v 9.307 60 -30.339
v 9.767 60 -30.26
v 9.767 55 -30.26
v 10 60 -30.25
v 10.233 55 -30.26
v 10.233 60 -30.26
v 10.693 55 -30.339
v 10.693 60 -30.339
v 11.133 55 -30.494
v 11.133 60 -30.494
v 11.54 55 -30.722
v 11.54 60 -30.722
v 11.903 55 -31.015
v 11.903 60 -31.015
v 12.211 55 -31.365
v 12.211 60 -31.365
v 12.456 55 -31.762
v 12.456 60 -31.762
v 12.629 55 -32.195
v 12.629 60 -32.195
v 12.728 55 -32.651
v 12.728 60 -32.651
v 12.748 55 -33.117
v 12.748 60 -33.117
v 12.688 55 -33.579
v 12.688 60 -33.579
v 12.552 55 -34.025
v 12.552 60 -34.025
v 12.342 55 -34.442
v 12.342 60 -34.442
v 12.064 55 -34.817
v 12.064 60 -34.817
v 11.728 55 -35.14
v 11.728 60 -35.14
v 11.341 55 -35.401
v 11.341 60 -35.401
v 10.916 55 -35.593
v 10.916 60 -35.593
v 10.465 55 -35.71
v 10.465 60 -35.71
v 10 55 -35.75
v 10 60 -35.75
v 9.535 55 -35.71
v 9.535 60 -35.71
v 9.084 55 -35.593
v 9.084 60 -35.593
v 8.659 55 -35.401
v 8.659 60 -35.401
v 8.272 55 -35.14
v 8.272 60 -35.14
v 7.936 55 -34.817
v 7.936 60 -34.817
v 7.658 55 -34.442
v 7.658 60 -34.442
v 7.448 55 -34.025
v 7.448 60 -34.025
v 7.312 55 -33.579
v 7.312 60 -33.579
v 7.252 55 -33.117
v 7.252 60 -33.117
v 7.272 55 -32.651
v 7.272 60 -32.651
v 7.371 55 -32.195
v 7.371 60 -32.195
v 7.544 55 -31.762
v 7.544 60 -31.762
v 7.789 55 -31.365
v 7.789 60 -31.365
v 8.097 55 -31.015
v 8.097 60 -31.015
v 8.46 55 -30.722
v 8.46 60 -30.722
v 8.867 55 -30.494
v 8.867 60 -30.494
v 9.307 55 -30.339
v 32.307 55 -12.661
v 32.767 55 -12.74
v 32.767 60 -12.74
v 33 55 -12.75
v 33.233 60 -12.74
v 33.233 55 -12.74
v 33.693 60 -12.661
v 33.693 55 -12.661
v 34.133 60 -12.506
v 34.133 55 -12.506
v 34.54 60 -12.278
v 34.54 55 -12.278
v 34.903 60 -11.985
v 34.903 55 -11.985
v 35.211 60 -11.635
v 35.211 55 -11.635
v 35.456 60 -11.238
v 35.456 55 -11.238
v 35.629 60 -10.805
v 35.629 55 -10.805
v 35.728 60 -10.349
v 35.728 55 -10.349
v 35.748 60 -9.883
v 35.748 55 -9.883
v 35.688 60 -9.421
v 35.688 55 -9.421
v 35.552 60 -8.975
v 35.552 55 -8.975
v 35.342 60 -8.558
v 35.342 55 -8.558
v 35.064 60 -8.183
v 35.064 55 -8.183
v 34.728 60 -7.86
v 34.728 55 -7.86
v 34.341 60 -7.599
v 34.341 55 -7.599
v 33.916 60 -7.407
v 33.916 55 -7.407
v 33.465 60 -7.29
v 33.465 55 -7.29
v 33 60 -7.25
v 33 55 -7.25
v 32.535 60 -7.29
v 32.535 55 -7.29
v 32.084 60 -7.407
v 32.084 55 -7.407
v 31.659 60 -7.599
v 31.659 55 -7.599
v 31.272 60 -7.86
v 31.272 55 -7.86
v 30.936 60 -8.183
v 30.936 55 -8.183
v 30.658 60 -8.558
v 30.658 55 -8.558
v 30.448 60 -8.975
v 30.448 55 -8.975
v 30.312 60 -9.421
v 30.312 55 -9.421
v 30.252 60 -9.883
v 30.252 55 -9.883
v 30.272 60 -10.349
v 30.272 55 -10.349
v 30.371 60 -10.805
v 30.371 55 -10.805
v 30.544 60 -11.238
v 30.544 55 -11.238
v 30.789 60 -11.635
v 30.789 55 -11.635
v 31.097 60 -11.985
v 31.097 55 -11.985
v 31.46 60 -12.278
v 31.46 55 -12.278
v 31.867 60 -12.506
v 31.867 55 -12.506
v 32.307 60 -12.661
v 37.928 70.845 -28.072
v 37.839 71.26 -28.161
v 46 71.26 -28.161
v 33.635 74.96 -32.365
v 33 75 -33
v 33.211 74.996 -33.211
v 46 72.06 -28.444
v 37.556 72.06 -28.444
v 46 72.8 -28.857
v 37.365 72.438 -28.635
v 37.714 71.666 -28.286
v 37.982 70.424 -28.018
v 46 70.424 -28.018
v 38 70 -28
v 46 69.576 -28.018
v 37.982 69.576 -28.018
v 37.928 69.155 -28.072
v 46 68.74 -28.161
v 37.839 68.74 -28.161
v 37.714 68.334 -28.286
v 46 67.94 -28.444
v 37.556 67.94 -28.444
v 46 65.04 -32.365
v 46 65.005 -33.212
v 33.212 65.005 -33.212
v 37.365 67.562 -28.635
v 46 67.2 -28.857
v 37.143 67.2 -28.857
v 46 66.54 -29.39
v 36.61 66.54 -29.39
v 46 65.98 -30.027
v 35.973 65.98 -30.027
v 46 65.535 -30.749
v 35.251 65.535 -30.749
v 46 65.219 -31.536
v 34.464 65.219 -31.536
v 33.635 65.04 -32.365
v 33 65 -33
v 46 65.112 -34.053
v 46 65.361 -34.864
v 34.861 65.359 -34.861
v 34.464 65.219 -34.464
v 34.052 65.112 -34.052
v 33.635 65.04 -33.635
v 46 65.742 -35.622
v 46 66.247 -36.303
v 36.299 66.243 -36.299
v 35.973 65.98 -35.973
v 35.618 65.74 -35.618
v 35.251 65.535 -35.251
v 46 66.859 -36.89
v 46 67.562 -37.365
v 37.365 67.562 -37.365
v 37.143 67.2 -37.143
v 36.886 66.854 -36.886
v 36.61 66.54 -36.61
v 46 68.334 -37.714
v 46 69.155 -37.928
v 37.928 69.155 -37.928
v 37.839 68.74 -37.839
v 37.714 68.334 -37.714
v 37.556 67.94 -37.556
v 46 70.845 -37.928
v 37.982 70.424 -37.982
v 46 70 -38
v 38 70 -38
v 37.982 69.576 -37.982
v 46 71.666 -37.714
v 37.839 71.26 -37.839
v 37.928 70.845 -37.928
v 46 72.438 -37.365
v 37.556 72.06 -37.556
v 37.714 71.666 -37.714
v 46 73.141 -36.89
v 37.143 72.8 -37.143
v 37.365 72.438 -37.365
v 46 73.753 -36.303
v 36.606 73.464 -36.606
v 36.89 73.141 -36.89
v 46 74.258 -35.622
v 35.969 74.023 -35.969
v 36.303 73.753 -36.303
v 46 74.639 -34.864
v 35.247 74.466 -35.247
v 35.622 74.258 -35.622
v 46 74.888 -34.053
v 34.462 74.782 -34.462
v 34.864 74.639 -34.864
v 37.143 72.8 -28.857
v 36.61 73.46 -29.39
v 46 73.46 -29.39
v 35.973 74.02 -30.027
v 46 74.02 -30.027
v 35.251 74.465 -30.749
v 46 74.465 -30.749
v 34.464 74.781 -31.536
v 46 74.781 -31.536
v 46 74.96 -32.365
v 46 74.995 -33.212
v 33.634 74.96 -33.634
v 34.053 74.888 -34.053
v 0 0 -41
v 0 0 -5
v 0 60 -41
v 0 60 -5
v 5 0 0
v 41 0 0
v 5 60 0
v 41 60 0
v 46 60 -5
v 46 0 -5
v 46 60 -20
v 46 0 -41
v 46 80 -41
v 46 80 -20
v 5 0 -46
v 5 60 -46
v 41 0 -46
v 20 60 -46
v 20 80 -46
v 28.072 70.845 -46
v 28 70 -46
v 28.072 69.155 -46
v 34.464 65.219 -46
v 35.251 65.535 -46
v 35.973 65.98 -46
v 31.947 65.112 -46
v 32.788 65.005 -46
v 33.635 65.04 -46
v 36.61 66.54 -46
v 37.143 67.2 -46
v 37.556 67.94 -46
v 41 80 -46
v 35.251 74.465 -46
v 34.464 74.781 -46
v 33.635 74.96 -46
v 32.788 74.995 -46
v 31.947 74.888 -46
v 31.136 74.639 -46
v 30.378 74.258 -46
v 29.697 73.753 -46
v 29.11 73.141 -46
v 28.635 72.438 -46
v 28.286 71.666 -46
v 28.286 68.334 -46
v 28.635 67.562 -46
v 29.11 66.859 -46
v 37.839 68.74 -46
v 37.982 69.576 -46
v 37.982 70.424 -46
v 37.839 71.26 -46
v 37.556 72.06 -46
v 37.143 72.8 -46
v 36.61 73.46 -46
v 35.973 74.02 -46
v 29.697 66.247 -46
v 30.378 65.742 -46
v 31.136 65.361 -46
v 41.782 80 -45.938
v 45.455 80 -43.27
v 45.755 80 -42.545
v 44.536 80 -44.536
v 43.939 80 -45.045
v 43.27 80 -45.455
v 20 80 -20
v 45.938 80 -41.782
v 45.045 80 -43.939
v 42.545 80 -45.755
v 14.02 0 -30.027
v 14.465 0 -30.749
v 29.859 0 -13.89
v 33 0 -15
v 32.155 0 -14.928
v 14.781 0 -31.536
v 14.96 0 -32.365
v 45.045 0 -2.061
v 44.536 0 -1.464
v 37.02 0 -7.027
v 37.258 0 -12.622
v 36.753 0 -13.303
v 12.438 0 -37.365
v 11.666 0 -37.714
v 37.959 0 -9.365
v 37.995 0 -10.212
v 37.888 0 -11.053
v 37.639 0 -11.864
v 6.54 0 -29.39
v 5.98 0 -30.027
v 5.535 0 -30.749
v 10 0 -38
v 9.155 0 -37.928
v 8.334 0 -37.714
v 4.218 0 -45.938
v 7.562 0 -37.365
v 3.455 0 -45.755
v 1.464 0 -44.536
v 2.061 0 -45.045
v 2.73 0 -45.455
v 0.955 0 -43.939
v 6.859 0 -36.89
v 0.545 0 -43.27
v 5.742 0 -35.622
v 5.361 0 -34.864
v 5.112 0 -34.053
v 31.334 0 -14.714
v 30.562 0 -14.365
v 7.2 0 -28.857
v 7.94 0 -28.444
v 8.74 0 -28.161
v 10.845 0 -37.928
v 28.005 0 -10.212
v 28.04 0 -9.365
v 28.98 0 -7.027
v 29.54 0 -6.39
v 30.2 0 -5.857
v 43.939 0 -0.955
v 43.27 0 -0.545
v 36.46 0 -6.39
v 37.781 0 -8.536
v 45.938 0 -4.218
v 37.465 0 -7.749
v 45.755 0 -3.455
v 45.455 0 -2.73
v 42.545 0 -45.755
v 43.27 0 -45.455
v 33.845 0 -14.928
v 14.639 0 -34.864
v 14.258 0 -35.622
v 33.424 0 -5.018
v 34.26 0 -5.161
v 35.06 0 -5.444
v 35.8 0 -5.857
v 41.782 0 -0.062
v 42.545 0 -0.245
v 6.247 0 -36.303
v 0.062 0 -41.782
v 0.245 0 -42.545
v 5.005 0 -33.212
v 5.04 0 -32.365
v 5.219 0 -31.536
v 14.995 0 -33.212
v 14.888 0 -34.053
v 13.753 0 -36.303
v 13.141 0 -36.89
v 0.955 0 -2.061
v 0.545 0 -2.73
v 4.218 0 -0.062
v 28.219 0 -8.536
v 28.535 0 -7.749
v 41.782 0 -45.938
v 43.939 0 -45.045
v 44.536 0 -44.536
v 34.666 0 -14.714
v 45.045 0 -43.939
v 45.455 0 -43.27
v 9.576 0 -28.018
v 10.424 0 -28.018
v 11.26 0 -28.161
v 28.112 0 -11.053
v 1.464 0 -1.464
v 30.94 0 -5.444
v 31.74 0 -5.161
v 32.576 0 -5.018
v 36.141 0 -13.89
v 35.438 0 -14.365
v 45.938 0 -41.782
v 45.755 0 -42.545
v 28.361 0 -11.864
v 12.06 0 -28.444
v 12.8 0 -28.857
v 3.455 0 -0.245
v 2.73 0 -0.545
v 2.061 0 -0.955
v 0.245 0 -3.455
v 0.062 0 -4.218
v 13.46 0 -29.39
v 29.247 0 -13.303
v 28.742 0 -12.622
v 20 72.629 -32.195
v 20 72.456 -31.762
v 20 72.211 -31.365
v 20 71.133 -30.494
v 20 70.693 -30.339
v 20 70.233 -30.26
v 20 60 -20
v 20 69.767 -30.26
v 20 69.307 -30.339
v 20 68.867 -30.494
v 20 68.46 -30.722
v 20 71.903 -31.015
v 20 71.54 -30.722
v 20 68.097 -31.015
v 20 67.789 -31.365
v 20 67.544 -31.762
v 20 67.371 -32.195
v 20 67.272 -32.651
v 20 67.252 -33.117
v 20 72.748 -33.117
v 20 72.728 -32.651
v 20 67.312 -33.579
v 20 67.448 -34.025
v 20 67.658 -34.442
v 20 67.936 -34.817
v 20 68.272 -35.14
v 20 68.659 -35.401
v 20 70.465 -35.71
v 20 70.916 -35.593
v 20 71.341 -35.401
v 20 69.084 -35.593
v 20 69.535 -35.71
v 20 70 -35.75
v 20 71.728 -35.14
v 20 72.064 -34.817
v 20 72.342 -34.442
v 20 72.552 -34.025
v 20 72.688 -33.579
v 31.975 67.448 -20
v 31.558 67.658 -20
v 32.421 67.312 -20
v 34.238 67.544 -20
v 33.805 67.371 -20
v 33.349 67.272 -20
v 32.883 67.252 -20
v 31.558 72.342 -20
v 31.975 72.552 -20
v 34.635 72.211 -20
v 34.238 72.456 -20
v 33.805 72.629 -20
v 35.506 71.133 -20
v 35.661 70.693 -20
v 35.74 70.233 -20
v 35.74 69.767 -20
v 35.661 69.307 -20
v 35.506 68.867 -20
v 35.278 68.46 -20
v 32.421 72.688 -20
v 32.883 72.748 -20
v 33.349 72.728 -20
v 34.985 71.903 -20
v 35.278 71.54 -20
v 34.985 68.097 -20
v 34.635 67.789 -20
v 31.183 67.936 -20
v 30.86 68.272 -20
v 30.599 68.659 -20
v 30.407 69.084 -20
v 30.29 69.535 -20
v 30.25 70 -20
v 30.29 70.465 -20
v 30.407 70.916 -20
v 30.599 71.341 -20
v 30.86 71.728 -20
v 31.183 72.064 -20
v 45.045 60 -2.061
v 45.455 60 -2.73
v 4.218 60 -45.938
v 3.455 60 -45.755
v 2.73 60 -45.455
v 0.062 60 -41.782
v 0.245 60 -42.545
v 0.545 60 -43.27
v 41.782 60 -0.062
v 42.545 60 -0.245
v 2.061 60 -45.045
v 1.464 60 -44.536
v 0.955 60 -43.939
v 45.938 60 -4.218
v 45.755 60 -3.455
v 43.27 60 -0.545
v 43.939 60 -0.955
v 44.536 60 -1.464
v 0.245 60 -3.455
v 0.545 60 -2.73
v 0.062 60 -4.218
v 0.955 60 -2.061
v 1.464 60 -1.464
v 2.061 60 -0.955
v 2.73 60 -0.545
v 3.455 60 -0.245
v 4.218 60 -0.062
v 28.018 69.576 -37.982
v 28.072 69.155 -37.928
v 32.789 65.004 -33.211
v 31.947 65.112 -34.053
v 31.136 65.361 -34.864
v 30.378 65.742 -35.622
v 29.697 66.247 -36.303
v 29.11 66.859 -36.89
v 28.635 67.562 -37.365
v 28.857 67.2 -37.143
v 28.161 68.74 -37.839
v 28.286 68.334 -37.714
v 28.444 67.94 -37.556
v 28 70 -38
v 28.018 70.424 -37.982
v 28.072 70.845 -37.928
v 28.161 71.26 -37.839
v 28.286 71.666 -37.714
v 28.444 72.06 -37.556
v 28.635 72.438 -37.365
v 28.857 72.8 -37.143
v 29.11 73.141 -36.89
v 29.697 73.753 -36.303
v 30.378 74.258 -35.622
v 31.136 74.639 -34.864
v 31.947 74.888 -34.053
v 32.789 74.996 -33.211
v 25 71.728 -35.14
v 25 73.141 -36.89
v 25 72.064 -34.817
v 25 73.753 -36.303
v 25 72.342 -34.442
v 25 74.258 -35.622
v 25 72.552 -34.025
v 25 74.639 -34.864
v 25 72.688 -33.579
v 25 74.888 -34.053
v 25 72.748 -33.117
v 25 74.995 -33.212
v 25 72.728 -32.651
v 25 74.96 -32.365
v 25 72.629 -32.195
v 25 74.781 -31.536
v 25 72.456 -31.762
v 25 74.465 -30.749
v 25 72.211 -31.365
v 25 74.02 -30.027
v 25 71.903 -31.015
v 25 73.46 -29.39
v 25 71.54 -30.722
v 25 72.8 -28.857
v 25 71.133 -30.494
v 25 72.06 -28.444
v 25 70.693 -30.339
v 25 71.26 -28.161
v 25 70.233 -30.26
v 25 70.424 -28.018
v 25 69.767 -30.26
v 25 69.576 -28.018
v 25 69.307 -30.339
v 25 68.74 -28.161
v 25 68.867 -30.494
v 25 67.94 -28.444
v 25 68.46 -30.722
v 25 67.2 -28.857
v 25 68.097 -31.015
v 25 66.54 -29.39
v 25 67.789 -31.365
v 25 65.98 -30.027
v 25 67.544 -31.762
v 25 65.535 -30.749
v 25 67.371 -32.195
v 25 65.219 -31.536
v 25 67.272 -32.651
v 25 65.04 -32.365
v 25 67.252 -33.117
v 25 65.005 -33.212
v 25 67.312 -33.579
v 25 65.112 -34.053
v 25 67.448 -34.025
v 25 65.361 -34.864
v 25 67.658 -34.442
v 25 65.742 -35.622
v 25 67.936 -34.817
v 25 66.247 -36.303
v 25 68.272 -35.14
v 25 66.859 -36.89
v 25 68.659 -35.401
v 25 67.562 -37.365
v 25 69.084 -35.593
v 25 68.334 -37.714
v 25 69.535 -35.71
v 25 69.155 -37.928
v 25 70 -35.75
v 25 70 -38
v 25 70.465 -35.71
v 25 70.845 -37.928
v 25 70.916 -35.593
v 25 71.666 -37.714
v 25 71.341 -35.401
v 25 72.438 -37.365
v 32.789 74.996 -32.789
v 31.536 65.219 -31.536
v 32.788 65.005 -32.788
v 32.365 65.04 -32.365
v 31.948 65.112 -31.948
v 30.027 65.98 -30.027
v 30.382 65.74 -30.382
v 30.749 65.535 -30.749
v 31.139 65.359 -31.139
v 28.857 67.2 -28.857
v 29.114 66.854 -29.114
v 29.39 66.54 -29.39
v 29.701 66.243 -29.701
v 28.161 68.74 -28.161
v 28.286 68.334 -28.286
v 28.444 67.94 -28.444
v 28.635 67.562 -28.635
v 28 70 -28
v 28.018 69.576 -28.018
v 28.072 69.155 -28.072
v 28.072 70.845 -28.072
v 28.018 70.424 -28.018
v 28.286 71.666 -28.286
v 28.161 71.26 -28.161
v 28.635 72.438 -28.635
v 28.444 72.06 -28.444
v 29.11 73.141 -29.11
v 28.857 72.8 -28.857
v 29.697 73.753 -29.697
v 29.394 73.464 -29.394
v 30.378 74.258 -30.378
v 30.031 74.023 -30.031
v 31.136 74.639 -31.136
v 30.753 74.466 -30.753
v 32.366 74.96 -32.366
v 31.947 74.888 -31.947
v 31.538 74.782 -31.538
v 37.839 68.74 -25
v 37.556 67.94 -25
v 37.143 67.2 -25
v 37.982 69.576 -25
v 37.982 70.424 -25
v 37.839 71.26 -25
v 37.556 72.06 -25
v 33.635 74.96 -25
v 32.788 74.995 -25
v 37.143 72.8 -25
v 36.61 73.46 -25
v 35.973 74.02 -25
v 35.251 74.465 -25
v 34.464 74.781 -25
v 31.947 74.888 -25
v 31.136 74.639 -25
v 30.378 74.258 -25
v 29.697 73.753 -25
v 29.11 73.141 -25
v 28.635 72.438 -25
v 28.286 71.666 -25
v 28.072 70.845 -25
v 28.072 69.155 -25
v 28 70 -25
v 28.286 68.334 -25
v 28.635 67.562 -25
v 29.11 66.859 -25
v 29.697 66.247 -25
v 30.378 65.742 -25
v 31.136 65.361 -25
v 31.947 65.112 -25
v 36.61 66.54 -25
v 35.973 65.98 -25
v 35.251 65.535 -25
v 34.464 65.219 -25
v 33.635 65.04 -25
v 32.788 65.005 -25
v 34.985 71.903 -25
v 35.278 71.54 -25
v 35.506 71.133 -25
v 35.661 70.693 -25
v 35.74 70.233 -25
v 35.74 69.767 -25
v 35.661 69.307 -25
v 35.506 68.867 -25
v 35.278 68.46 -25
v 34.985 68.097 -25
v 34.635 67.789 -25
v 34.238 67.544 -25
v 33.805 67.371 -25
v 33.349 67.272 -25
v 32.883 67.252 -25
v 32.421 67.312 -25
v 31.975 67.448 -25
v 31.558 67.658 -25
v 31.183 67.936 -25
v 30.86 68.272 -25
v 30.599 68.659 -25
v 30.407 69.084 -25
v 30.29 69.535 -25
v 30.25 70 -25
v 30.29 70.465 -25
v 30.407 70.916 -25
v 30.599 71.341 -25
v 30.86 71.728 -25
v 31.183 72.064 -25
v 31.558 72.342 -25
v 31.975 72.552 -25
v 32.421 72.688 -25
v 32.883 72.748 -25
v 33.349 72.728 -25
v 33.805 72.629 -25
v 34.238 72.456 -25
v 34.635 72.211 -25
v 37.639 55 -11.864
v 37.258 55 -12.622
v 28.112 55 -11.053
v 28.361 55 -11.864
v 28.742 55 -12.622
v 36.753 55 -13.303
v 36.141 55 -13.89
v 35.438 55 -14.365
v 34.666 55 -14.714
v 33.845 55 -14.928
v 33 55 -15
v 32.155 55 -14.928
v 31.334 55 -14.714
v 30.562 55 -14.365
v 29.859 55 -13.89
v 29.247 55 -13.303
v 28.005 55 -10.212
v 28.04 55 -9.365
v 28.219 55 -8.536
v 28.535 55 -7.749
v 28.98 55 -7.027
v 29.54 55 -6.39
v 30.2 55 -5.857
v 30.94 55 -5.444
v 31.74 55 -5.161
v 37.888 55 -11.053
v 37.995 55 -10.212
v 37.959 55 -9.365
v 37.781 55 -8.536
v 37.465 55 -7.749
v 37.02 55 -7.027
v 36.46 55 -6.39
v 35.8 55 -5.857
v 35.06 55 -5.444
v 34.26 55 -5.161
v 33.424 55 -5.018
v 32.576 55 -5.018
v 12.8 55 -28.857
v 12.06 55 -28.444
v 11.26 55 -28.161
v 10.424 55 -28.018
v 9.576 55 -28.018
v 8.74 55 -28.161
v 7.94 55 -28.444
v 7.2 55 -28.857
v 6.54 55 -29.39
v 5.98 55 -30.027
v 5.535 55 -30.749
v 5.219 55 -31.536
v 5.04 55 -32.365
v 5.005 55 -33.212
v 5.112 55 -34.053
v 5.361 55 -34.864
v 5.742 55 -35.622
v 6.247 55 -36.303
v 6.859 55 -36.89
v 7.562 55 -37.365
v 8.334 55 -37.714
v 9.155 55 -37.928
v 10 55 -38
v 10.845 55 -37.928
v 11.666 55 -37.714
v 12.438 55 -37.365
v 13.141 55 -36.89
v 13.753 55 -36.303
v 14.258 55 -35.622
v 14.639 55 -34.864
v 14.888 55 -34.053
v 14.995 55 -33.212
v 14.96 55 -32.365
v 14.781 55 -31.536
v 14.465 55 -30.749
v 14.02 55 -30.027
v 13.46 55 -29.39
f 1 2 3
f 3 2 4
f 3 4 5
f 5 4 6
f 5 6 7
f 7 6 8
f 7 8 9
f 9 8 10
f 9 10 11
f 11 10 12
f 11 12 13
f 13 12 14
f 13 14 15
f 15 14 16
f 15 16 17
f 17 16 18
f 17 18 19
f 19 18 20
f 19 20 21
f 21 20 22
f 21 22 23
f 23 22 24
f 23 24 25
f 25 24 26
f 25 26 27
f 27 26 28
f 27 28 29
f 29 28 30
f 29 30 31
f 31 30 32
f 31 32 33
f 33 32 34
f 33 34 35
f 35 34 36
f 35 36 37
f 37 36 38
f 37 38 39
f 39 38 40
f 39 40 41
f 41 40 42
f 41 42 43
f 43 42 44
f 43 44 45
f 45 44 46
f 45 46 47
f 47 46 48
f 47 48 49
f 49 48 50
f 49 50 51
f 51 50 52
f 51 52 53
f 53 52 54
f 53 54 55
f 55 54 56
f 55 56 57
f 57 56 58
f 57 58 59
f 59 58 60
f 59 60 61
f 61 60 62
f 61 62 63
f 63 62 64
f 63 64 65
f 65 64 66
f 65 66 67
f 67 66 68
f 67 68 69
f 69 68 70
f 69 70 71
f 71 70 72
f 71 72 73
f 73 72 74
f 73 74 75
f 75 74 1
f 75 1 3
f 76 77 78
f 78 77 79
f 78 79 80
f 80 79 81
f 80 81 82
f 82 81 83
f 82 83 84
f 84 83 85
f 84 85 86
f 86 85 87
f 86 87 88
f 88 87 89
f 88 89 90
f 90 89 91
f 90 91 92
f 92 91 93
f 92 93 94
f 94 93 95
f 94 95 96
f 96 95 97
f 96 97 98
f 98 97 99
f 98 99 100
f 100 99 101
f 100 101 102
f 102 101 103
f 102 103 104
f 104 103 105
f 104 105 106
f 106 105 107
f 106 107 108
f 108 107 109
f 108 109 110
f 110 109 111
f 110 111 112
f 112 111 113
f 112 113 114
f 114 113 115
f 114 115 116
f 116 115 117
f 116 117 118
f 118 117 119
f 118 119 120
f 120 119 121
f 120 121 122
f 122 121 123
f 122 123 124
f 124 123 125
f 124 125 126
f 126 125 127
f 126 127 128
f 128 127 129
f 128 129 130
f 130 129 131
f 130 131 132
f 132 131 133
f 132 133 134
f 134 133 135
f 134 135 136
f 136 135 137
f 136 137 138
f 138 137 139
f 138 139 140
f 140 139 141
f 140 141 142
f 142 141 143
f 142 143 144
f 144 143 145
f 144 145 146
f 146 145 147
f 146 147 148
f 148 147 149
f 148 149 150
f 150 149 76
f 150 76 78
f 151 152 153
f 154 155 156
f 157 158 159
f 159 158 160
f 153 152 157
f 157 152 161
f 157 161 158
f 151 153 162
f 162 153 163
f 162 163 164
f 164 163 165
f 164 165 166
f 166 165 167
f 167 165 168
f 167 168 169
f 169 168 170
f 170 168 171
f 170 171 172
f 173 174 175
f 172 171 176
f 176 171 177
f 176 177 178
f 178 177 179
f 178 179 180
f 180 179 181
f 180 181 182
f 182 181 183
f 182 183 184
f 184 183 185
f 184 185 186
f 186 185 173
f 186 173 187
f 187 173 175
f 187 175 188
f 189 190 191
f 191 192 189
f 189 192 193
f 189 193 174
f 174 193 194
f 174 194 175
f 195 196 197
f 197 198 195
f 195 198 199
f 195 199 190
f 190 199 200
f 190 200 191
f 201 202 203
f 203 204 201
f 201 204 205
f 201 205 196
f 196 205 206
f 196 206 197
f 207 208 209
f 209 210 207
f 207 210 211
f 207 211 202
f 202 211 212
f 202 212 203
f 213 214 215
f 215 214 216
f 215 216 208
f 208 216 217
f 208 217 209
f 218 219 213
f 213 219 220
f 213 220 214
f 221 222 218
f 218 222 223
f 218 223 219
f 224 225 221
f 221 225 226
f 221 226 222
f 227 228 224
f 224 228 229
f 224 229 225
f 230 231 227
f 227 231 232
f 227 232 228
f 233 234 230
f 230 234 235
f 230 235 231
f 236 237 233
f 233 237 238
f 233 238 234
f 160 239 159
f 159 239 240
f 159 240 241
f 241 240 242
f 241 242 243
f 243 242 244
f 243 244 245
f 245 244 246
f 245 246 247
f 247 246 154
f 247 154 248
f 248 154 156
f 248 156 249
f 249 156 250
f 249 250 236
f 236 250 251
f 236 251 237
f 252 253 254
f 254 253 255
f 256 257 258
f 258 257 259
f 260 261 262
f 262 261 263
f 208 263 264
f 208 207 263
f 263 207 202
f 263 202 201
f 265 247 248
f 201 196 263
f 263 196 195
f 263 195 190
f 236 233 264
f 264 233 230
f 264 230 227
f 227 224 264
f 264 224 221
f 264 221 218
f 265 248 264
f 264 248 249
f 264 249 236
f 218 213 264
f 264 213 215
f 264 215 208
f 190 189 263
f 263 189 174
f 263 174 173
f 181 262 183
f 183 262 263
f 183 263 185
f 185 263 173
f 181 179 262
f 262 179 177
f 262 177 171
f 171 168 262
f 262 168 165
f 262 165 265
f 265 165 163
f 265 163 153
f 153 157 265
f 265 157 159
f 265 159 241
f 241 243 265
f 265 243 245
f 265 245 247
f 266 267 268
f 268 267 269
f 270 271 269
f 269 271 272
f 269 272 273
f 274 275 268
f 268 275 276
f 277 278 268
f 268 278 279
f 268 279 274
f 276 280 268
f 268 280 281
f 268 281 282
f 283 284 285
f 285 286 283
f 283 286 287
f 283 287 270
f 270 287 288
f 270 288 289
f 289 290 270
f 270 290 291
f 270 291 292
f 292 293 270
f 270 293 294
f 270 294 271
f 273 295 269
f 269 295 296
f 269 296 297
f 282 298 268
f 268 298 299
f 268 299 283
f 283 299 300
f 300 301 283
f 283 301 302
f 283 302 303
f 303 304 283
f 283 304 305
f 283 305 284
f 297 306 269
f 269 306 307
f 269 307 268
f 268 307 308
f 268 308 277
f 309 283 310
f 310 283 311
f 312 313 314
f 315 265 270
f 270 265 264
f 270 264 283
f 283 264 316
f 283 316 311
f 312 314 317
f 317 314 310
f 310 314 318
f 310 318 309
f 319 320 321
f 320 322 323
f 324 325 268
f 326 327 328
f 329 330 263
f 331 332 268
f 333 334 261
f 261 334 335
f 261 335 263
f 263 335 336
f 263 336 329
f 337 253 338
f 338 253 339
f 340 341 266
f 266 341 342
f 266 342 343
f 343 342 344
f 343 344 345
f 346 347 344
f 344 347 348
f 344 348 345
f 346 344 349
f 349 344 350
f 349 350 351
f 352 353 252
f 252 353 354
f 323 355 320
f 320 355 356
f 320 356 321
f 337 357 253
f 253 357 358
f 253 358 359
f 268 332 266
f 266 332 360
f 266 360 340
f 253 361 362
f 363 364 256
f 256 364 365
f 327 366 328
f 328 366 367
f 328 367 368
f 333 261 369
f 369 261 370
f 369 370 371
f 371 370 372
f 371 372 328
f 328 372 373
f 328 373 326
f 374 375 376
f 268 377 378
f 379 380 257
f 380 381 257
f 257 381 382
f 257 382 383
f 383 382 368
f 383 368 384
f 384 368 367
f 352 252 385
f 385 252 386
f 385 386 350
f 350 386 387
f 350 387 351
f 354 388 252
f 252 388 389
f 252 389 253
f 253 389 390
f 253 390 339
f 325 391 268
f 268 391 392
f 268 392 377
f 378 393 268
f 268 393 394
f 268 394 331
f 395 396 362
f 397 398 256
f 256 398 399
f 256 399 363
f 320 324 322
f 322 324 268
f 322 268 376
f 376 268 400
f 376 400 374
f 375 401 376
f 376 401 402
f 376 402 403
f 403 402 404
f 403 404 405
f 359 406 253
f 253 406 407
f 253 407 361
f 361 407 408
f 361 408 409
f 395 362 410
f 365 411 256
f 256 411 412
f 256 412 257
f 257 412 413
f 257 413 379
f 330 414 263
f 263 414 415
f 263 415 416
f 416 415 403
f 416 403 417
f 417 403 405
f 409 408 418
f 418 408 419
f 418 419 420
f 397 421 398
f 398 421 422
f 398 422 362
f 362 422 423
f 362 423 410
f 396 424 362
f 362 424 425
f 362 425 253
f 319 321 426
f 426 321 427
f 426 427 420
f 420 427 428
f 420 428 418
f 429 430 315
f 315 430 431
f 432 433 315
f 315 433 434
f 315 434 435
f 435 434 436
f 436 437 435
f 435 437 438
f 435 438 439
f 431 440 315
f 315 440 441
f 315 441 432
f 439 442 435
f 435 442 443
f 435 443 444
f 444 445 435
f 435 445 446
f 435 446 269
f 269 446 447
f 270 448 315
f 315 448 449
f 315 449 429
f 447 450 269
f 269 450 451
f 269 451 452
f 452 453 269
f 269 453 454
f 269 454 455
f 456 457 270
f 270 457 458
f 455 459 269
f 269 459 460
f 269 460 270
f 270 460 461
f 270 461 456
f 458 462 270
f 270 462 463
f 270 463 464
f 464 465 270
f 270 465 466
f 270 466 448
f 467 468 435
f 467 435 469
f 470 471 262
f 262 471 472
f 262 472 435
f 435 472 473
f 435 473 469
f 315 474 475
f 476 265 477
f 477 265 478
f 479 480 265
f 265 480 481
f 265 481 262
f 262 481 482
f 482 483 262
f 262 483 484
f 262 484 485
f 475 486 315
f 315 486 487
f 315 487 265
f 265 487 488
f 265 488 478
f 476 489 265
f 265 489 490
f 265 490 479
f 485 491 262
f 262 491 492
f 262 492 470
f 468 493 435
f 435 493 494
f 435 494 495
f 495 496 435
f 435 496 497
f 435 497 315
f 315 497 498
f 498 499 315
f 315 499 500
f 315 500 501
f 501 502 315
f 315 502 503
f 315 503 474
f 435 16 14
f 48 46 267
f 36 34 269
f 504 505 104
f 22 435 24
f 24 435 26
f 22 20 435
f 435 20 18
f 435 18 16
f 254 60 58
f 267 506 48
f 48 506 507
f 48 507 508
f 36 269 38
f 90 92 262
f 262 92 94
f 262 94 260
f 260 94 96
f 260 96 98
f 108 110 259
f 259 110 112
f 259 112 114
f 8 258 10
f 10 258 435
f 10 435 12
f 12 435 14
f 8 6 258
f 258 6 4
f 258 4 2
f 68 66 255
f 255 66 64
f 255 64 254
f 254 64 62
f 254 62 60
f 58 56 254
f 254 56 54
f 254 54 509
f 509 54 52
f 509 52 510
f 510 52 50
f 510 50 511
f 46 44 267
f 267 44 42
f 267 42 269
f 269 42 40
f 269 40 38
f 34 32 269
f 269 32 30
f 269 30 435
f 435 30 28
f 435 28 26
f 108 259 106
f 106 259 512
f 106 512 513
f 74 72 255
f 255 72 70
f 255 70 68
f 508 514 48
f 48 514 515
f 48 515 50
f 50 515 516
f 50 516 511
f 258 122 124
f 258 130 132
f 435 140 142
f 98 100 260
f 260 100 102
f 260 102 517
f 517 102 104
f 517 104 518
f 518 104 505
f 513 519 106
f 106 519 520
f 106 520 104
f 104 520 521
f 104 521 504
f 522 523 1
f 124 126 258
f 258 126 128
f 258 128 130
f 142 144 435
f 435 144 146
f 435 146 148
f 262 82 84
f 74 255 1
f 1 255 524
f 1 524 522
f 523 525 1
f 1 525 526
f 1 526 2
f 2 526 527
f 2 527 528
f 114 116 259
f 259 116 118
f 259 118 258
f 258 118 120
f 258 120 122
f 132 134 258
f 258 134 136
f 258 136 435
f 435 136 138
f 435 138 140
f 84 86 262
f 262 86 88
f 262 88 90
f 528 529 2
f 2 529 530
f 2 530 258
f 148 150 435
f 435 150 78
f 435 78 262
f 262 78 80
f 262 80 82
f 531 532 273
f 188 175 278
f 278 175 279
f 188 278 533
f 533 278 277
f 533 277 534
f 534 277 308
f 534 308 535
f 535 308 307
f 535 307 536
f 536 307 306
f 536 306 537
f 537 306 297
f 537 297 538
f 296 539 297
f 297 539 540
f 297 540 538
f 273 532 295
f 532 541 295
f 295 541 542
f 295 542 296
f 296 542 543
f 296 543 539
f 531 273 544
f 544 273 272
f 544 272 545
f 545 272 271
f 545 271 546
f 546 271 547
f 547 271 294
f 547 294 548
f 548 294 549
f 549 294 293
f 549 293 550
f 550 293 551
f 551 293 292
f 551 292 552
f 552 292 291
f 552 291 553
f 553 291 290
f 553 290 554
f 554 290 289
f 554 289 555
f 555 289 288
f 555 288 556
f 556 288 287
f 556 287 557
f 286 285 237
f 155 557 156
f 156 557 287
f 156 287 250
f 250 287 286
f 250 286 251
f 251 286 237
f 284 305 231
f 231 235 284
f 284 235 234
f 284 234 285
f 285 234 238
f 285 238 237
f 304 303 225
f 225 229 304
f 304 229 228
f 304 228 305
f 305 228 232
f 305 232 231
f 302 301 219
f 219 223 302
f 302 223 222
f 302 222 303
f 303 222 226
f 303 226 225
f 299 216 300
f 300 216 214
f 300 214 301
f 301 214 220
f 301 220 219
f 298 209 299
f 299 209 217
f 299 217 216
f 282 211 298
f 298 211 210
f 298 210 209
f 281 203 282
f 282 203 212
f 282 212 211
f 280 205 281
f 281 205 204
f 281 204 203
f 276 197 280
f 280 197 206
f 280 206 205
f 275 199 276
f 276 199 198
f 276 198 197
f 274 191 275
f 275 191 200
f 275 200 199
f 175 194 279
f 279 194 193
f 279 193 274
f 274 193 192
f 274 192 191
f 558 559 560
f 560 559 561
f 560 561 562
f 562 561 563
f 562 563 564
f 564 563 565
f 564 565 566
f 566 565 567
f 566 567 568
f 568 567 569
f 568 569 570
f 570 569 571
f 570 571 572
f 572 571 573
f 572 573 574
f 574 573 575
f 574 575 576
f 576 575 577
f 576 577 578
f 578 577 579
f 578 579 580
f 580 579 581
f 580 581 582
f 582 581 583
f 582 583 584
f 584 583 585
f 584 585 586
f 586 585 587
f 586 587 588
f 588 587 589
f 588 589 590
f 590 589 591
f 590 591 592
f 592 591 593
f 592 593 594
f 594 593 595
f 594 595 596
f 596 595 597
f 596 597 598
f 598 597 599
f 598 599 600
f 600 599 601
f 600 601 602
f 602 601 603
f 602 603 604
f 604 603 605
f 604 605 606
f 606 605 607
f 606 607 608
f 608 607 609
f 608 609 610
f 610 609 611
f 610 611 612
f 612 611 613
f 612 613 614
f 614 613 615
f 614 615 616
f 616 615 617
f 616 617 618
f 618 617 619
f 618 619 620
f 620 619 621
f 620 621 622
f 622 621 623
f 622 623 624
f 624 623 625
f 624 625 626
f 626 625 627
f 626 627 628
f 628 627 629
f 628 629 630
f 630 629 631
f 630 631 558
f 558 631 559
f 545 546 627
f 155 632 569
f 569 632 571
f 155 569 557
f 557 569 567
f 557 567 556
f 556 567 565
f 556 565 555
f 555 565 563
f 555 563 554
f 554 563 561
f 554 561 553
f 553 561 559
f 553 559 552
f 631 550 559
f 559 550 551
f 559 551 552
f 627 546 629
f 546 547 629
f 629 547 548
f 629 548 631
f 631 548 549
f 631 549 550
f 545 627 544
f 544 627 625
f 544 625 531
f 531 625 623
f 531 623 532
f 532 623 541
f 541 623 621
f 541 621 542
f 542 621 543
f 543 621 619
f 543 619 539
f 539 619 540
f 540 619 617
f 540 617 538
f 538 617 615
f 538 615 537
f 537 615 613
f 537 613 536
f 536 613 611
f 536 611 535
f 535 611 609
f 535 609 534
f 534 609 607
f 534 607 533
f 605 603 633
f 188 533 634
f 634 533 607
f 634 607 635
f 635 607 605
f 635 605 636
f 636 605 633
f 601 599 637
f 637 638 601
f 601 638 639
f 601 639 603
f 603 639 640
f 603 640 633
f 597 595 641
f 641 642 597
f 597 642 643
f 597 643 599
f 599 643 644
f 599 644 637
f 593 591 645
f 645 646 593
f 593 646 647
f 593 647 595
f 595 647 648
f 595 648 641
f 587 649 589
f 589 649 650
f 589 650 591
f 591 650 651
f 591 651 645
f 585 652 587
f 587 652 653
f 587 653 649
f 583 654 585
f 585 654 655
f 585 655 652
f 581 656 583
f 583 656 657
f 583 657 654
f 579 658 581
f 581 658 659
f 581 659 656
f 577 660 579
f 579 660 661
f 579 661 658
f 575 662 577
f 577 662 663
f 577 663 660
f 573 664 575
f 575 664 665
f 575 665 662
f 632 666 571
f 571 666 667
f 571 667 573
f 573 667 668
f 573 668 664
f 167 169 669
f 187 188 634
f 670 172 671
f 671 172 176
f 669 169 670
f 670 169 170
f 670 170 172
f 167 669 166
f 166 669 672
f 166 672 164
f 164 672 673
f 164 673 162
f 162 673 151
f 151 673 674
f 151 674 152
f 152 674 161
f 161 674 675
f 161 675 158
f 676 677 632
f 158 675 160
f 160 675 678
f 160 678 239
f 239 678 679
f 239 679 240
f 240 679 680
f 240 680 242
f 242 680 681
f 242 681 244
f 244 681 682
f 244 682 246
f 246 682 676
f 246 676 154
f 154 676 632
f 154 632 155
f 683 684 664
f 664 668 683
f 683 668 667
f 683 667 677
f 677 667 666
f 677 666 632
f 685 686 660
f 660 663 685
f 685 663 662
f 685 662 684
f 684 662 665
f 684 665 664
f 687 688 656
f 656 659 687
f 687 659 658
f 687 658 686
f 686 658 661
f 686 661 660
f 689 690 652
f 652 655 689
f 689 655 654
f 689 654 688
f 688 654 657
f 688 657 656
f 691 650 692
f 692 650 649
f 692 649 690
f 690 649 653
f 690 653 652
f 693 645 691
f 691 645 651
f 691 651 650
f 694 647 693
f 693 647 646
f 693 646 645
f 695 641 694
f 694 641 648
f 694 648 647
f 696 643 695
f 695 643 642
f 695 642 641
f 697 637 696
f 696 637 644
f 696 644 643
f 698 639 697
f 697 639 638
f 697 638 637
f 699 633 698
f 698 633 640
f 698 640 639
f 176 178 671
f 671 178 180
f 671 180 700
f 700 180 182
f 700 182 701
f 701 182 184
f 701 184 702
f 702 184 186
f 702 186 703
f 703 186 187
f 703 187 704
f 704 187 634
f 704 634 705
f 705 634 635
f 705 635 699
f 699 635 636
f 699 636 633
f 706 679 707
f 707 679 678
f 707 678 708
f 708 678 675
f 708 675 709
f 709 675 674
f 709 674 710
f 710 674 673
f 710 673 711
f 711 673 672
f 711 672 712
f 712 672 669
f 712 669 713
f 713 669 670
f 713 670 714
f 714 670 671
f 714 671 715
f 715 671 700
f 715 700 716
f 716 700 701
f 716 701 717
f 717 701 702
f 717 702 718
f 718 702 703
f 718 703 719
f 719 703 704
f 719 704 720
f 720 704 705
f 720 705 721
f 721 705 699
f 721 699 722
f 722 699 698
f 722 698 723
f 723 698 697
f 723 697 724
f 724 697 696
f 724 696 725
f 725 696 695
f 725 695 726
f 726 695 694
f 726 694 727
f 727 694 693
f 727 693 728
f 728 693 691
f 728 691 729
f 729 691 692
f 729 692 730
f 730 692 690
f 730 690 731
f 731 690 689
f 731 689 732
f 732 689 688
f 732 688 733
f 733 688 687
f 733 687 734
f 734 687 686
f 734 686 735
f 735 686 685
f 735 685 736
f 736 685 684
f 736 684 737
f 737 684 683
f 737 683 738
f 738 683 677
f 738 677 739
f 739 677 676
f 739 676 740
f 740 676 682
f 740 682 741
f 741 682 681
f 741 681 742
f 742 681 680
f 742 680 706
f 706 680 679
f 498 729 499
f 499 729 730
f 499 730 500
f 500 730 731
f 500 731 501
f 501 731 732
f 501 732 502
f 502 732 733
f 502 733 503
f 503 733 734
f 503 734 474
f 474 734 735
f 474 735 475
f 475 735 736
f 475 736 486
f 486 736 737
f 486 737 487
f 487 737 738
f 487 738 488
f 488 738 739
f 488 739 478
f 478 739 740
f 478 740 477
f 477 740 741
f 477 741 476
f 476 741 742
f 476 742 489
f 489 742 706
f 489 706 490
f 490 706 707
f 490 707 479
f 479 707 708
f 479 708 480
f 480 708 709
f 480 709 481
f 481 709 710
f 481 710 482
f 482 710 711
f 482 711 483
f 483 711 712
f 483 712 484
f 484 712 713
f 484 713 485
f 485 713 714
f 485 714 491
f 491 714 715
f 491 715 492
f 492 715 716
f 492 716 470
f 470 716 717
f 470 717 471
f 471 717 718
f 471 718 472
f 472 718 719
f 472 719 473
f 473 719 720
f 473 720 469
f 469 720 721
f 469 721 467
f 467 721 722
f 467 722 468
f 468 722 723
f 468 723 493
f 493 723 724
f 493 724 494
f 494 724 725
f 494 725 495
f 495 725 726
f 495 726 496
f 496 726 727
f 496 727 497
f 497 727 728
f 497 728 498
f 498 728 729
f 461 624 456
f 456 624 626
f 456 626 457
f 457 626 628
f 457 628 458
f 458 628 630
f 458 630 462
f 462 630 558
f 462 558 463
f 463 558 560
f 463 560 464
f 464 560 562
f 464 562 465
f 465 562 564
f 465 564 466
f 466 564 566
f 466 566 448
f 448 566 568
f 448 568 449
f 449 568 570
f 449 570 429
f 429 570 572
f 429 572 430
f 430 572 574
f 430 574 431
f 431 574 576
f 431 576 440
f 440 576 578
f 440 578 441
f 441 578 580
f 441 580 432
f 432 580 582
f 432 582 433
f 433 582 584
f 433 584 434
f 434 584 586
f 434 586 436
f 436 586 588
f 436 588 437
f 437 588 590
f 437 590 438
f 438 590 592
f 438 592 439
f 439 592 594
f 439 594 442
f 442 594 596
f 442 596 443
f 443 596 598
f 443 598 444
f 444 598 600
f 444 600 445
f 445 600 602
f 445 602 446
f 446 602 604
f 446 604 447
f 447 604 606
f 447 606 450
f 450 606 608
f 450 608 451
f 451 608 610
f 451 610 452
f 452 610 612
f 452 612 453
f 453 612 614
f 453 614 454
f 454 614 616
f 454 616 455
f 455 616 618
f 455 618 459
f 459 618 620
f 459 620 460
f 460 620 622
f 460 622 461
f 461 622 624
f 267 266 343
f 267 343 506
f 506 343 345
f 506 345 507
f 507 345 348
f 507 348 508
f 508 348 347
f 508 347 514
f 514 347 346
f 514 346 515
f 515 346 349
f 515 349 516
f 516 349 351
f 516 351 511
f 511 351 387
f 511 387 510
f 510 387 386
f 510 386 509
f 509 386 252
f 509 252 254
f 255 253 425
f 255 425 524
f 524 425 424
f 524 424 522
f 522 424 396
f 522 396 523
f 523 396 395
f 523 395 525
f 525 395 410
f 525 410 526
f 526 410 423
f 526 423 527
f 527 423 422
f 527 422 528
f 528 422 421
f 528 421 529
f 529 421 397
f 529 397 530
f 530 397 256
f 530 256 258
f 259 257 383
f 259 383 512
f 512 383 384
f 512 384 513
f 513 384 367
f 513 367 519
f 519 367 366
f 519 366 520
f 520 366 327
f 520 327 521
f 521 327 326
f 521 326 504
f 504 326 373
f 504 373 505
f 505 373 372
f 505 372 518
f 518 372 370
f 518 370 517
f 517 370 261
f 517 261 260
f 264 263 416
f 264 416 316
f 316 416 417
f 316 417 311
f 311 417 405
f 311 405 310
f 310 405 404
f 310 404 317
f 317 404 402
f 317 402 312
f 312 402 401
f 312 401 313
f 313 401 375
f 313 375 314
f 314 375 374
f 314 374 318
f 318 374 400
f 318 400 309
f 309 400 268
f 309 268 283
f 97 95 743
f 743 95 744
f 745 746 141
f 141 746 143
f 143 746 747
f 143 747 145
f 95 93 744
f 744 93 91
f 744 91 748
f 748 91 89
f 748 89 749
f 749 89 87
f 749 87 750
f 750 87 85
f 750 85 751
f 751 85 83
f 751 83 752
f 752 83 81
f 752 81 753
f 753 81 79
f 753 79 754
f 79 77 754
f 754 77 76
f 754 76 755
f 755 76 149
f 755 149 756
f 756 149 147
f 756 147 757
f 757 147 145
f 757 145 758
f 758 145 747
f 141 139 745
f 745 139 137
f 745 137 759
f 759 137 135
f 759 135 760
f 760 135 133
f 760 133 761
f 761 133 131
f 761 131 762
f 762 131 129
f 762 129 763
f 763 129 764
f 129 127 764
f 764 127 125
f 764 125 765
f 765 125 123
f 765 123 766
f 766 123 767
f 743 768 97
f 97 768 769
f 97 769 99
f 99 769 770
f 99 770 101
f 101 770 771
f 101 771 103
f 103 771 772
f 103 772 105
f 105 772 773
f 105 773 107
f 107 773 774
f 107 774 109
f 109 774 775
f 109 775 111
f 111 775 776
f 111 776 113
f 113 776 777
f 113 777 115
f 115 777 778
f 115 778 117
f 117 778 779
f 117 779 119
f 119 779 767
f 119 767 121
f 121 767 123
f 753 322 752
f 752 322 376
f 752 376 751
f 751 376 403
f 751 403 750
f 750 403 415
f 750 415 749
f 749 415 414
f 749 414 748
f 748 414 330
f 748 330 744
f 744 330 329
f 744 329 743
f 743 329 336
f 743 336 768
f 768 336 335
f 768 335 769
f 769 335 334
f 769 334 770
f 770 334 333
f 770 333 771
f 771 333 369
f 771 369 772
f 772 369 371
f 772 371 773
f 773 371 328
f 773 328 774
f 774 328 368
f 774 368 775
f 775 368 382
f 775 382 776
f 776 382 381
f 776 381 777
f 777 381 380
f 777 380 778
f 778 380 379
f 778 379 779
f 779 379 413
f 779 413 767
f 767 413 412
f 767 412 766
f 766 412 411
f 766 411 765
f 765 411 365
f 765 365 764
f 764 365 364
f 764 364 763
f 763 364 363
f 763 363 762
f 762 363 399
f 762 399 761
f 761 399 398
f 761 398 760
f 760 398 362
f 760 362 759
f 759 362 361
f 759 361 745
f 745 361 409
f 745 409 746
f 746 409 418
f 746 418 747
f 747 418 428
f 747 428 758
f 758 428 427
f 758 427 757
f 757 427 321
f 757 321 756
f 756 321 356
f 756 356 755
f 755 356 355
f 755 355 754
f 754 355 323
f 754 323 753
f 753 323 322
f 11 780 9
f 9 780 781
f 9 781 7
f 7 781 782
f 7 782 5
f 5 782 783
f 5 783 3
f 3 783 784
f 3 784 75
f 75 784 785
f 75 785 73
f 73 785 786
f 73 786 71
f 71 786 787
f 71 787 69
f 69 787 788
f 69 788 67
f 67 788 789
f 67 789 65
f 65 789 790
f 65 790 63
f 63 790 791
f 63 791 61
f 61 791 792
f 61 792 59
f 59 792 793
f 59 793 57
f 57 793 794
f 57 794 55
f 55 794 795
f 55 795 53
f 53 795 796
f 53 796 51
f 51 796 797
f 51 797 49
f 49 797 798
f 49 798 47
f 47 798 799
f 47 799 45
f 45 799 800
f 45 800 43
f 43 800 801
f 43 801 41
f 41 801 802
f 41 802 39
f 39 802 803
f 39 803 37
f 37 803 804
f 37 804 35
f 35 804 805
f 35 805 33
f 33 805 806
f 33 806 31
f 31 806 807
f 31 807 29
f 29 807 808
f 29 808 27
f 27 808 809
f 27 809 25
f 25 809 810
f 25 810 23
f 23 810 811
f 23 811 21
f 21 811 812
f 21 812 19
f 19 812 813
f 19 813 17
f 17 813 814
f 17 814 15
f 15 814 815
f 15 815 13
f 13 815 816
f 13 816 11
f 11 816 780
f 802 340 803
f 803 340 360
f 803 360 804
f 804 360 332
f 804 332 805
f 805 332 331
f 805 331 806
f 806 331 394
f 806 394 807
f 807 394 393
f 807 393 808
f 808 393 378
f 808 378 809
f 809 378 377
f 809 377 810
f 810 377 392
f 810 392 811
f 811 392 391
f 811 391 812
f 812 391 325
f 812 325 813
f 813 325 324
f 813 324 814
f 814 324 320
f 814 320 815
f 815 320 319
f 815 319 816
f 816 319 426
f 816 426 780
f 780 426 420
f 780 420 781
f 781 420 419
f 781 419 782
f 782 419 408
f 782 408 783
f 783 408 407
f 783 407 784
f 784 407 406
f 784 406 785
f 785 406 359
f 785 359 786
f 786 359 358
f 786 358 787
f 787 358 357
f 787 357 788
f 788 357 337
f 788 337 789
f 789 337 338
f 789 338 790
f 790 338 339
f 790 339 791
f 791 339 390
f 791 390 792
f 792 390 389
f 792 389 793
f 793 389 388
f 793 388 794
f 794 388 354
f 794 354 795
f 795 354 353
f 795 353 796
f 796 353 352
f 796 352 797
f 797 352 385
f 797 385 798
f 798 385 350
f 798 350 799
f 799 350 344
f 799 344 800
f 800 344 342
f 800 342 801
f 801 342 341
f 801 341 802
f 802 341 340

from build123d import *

# Parameters (mm, degrees)
SKETCH1_W           = 46
SKETCH1_H           = 46
BOSS_EXTRUDE1_DEPTH = 80
CUT_EXTRUDE1_DEPTH  = 20
SKETCH3_R           = 5
CUT_EXTRUDE2_DEPTH  = 21
SKETCH4_R           = 5
CUT_EXTRUDE3_DEPTH  = 21
SKETCH5_R           = 2.75
CUT_EXTRUDE4_DEPTH  = 47
SKETCH6_R           = 2.75
CUT_EXTRUDE5_DEPTH  = 47
FILLET1_R           = 5
SKETCH9_R           = 2.75
CUT_EXTRUDE8_DEPTH  = 81
SKETCH10_R          = 2.75
CUT_EXTRUDE9_DEPTH  = 61
SKETCH11_R          = 5
CUT_EXTRUDE10_DEPTH = 55


with BuildPart() as part:
    # Sketch1 → Boss-Extrude1 (new body)
    with BuildSketch(Plane(origin=(0, 0, 0), x_dir=(1, 0, 0), z_dir=(0, 1, 0))):
        with Locations((23, 23)):
            Rectangle(SKETCH1_W, SKETCH1_H)
    extrude(amount=BOSS_EXTRUDE1_DEPTH)

    # Sketch2 → Cut-Extrude1 (cut)
    with BuildSketch(Plane(origin=(0, 80, 0), x_dir=(1, 0, 0), z_dir=(0, 1, 0))):
        Polygon((0, 46), (20, 46), (20, 20), (46, 20), (46, 0), (20, 0), (0, 0), align=None)
    extrude(amount=-CUT_EXTRUDE1_DEPTH, mode=Mode.SUBTRACT)

    # Sketch3 → Cut-Extrude2 (cut)
    with BuildSketch(Plane(origin=(46, 0, 0), x_dir=(0, 0, -1), z_dir=(1, 0, 0))):
        with Locations((33, 70)):
            Circle(SKETCH3_R)
    extrude(amount=-CUT_EXTRUDE2_DEPTH, mode=Mode.SUBTRACT)

    # Sketch4 → Cut-Extrude3 (cut)
    with BuildSketch(Plane(origin=(0, 0, -46), x_dir=(-1, 0, 0), z_dir=(0, 0, -1))):
        with Locations((-33, 70)):
            Circle(SKETCH4_R)
    extrude(amount=-CUT_EXTRUDE3_DEPTH, mode=Mode.SUBTRACT)

    # Sketch5 → Cut-Extrude4 (cut, through all)
    with BuildSketch(Plane(origin=(0, 0, -46), x_dir=(-1, 0, 0), z_dir=(0, 0, -1))):
        with Locations((-33, 70)):
            Circle(SKETCH5_R)
    extrude(amount=-CUT_EXTRUDE4_DEPTH, mode=Mode.SUBTRACT)

    # Sketch6 → Cut-Extrude5 (cut, through all)
    with BuildSketch(Plane(origin=(46, 0, 0), x_dir=(0, 0, -1), z_dir=(1, 0, 0))):
        with Locations((33, 70)):
            Circle(SKETCH6_R)
    extrude(amount=-CUT_EXTRUDE5_DEPTH, mode=Mode.SUBTRACT)

    # Fillet1
    fillet1_edges = [part.edges().sort_by_distance(p)[0] for p in [
        (0, 30, -46),
        (46, 30, 0),
        (0, 30, 0),
        (46, 40, -46),
    ]]
    fillet(fillet1_edges, radius=FILLET1_R)

    # Sketch9 → Cut-Extrude8 (cut, through all)
    with BuildSketch(Plane.XZ):
        with Locations((10, -33)):
            Circle(SKETCH9_R)
    extrude(amount=-CUT_EXTRUDE8_DEPTH, mode=Mode.SUBTRACT)

    # Sketch10 → Cut-Extrude9 (cut, through all)
    with BuildSketch(Plane(origin=(0, 60, 0), x_dir=(1, 0, 0), z_dir=(0, 1, 0))):
        with Locations((33, 10)):
            Circle(SKETCH10_R)
    extrude(amount=-CUT_EXTRUDE9_DEPTH, mode=Mode.SUBTRACT)

    # Sketch11 → Cut-Extrude10 (cut)
    with BuildSketch(Plane.XZ):
        with Locations((33, -10)):
            Circle(SKETCH11_R)
        with Locations((10, -33)):
            Circle(SKETCH11_R)
    extrude(amount=-CUT_EXTRUDE10_DEPTH, mode=Mode.SUBTRACT)


solid = part.part
